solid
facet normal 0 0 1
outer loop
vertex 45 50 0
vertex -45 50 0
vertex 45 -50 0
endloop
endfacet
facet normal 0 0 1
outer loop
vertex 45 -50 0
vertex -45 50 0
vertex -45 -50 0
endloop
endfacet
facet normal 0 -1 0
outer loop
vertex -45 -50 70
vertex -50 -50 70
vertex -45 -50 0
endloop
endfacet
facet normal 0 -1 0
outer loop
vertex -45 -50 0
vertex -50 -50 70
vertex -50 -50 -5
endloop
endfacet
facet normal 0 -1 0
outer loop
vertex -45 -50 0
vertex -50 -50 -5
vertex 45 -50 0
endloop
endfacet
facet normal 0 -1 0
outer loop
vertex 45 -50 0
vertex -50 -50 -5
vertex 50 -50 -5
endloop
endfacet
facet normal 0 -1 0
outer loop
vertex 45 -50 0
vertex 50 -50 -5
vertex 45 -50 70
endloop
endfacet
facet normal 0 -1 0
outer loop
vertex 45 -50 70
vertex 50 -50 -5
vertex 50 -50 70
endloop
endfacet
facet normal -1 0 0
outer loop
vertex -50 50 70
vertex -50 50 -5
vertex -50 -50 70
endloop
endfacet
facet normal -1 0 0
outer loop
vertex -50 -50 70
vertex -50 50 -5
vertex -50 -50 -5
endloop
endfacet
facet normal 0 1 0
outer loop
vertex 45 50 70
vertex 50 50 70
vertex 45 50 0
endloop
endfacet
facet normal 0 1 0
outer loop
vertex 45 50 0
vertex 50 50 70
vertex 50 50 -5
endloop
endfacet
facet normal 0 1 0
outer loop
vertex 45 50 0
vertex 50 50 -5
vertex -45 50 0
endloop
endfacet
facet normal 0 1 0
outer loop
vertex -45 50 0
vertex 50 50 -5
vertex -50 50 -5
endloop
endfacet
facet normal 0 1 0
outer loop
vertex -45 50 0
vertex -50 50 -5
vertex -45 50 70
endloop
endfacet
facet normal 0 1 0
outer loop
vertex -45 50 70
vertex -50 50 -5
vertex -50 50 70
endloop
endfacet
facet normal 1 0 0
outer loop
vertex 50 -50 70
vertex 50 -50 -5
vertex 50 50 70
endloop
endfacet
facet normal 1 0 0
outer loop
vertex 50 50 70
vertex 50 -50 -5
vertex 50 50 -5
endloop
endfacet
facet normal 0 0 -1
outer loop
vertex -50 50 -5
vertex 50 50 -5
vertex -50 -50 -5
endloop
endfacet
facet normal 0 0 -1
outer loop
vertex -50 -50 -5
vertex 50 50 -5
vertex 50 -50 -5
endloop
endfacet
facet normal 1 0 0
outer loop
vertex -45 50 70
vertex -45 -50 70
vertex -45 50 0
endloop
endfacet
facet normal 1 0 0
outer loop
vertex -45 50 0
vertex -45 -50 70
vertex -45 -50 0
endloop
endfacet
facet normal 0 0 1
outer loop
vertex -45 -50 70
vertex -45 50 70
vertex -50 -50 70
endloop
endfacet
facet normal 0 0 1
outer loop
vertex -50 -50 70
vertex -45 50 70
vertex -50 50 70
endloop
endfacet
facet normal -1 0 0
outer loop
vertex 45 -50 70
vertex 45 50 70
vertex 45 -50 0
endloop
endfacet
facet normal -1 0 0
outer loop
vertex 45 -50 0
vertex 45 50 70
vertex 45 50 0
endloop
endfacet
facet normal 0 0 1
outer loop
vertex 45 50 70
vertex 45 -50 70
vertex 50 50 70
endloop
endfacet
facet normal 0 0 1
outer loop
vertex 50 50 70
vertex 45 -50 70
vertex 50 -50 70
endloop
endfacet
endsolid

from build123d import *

# Parameters (mm, degrees)
SKETCH1_W           = 100
SKETCH1_H           = 100
BOSS_EXTRUDE1_DEPTH = 5
SKETCH2_W           = 5
SKETCH2_H           = 100
BOSS_EXTRUDE3_DEPTH = 70


with BuildPart() as part:
    # Sketch1 → Boss-Extrude1 (new body)
    with BuildSketch(Plane.XY):
        Rectangle(SKETCH1_W, SKETCH1_H)
    extrude(amount=-BOSS_EXTRUDE1_DEPTH)

    # Sketch2 → Boss-Extrude3 (add)
    with BuildSketch(Plane.XY):
        with Locations((-47.5, 0)):
            Rectangle(SKETCH2_W, SKETCH2_H)
        with Locations((47.5, 0)):
            Rectangle(SKETCH2_W, SKETCH2_H)
    extrude(amount=BOSS_EXTRUDE3_DEPTH)


solid = part.part
